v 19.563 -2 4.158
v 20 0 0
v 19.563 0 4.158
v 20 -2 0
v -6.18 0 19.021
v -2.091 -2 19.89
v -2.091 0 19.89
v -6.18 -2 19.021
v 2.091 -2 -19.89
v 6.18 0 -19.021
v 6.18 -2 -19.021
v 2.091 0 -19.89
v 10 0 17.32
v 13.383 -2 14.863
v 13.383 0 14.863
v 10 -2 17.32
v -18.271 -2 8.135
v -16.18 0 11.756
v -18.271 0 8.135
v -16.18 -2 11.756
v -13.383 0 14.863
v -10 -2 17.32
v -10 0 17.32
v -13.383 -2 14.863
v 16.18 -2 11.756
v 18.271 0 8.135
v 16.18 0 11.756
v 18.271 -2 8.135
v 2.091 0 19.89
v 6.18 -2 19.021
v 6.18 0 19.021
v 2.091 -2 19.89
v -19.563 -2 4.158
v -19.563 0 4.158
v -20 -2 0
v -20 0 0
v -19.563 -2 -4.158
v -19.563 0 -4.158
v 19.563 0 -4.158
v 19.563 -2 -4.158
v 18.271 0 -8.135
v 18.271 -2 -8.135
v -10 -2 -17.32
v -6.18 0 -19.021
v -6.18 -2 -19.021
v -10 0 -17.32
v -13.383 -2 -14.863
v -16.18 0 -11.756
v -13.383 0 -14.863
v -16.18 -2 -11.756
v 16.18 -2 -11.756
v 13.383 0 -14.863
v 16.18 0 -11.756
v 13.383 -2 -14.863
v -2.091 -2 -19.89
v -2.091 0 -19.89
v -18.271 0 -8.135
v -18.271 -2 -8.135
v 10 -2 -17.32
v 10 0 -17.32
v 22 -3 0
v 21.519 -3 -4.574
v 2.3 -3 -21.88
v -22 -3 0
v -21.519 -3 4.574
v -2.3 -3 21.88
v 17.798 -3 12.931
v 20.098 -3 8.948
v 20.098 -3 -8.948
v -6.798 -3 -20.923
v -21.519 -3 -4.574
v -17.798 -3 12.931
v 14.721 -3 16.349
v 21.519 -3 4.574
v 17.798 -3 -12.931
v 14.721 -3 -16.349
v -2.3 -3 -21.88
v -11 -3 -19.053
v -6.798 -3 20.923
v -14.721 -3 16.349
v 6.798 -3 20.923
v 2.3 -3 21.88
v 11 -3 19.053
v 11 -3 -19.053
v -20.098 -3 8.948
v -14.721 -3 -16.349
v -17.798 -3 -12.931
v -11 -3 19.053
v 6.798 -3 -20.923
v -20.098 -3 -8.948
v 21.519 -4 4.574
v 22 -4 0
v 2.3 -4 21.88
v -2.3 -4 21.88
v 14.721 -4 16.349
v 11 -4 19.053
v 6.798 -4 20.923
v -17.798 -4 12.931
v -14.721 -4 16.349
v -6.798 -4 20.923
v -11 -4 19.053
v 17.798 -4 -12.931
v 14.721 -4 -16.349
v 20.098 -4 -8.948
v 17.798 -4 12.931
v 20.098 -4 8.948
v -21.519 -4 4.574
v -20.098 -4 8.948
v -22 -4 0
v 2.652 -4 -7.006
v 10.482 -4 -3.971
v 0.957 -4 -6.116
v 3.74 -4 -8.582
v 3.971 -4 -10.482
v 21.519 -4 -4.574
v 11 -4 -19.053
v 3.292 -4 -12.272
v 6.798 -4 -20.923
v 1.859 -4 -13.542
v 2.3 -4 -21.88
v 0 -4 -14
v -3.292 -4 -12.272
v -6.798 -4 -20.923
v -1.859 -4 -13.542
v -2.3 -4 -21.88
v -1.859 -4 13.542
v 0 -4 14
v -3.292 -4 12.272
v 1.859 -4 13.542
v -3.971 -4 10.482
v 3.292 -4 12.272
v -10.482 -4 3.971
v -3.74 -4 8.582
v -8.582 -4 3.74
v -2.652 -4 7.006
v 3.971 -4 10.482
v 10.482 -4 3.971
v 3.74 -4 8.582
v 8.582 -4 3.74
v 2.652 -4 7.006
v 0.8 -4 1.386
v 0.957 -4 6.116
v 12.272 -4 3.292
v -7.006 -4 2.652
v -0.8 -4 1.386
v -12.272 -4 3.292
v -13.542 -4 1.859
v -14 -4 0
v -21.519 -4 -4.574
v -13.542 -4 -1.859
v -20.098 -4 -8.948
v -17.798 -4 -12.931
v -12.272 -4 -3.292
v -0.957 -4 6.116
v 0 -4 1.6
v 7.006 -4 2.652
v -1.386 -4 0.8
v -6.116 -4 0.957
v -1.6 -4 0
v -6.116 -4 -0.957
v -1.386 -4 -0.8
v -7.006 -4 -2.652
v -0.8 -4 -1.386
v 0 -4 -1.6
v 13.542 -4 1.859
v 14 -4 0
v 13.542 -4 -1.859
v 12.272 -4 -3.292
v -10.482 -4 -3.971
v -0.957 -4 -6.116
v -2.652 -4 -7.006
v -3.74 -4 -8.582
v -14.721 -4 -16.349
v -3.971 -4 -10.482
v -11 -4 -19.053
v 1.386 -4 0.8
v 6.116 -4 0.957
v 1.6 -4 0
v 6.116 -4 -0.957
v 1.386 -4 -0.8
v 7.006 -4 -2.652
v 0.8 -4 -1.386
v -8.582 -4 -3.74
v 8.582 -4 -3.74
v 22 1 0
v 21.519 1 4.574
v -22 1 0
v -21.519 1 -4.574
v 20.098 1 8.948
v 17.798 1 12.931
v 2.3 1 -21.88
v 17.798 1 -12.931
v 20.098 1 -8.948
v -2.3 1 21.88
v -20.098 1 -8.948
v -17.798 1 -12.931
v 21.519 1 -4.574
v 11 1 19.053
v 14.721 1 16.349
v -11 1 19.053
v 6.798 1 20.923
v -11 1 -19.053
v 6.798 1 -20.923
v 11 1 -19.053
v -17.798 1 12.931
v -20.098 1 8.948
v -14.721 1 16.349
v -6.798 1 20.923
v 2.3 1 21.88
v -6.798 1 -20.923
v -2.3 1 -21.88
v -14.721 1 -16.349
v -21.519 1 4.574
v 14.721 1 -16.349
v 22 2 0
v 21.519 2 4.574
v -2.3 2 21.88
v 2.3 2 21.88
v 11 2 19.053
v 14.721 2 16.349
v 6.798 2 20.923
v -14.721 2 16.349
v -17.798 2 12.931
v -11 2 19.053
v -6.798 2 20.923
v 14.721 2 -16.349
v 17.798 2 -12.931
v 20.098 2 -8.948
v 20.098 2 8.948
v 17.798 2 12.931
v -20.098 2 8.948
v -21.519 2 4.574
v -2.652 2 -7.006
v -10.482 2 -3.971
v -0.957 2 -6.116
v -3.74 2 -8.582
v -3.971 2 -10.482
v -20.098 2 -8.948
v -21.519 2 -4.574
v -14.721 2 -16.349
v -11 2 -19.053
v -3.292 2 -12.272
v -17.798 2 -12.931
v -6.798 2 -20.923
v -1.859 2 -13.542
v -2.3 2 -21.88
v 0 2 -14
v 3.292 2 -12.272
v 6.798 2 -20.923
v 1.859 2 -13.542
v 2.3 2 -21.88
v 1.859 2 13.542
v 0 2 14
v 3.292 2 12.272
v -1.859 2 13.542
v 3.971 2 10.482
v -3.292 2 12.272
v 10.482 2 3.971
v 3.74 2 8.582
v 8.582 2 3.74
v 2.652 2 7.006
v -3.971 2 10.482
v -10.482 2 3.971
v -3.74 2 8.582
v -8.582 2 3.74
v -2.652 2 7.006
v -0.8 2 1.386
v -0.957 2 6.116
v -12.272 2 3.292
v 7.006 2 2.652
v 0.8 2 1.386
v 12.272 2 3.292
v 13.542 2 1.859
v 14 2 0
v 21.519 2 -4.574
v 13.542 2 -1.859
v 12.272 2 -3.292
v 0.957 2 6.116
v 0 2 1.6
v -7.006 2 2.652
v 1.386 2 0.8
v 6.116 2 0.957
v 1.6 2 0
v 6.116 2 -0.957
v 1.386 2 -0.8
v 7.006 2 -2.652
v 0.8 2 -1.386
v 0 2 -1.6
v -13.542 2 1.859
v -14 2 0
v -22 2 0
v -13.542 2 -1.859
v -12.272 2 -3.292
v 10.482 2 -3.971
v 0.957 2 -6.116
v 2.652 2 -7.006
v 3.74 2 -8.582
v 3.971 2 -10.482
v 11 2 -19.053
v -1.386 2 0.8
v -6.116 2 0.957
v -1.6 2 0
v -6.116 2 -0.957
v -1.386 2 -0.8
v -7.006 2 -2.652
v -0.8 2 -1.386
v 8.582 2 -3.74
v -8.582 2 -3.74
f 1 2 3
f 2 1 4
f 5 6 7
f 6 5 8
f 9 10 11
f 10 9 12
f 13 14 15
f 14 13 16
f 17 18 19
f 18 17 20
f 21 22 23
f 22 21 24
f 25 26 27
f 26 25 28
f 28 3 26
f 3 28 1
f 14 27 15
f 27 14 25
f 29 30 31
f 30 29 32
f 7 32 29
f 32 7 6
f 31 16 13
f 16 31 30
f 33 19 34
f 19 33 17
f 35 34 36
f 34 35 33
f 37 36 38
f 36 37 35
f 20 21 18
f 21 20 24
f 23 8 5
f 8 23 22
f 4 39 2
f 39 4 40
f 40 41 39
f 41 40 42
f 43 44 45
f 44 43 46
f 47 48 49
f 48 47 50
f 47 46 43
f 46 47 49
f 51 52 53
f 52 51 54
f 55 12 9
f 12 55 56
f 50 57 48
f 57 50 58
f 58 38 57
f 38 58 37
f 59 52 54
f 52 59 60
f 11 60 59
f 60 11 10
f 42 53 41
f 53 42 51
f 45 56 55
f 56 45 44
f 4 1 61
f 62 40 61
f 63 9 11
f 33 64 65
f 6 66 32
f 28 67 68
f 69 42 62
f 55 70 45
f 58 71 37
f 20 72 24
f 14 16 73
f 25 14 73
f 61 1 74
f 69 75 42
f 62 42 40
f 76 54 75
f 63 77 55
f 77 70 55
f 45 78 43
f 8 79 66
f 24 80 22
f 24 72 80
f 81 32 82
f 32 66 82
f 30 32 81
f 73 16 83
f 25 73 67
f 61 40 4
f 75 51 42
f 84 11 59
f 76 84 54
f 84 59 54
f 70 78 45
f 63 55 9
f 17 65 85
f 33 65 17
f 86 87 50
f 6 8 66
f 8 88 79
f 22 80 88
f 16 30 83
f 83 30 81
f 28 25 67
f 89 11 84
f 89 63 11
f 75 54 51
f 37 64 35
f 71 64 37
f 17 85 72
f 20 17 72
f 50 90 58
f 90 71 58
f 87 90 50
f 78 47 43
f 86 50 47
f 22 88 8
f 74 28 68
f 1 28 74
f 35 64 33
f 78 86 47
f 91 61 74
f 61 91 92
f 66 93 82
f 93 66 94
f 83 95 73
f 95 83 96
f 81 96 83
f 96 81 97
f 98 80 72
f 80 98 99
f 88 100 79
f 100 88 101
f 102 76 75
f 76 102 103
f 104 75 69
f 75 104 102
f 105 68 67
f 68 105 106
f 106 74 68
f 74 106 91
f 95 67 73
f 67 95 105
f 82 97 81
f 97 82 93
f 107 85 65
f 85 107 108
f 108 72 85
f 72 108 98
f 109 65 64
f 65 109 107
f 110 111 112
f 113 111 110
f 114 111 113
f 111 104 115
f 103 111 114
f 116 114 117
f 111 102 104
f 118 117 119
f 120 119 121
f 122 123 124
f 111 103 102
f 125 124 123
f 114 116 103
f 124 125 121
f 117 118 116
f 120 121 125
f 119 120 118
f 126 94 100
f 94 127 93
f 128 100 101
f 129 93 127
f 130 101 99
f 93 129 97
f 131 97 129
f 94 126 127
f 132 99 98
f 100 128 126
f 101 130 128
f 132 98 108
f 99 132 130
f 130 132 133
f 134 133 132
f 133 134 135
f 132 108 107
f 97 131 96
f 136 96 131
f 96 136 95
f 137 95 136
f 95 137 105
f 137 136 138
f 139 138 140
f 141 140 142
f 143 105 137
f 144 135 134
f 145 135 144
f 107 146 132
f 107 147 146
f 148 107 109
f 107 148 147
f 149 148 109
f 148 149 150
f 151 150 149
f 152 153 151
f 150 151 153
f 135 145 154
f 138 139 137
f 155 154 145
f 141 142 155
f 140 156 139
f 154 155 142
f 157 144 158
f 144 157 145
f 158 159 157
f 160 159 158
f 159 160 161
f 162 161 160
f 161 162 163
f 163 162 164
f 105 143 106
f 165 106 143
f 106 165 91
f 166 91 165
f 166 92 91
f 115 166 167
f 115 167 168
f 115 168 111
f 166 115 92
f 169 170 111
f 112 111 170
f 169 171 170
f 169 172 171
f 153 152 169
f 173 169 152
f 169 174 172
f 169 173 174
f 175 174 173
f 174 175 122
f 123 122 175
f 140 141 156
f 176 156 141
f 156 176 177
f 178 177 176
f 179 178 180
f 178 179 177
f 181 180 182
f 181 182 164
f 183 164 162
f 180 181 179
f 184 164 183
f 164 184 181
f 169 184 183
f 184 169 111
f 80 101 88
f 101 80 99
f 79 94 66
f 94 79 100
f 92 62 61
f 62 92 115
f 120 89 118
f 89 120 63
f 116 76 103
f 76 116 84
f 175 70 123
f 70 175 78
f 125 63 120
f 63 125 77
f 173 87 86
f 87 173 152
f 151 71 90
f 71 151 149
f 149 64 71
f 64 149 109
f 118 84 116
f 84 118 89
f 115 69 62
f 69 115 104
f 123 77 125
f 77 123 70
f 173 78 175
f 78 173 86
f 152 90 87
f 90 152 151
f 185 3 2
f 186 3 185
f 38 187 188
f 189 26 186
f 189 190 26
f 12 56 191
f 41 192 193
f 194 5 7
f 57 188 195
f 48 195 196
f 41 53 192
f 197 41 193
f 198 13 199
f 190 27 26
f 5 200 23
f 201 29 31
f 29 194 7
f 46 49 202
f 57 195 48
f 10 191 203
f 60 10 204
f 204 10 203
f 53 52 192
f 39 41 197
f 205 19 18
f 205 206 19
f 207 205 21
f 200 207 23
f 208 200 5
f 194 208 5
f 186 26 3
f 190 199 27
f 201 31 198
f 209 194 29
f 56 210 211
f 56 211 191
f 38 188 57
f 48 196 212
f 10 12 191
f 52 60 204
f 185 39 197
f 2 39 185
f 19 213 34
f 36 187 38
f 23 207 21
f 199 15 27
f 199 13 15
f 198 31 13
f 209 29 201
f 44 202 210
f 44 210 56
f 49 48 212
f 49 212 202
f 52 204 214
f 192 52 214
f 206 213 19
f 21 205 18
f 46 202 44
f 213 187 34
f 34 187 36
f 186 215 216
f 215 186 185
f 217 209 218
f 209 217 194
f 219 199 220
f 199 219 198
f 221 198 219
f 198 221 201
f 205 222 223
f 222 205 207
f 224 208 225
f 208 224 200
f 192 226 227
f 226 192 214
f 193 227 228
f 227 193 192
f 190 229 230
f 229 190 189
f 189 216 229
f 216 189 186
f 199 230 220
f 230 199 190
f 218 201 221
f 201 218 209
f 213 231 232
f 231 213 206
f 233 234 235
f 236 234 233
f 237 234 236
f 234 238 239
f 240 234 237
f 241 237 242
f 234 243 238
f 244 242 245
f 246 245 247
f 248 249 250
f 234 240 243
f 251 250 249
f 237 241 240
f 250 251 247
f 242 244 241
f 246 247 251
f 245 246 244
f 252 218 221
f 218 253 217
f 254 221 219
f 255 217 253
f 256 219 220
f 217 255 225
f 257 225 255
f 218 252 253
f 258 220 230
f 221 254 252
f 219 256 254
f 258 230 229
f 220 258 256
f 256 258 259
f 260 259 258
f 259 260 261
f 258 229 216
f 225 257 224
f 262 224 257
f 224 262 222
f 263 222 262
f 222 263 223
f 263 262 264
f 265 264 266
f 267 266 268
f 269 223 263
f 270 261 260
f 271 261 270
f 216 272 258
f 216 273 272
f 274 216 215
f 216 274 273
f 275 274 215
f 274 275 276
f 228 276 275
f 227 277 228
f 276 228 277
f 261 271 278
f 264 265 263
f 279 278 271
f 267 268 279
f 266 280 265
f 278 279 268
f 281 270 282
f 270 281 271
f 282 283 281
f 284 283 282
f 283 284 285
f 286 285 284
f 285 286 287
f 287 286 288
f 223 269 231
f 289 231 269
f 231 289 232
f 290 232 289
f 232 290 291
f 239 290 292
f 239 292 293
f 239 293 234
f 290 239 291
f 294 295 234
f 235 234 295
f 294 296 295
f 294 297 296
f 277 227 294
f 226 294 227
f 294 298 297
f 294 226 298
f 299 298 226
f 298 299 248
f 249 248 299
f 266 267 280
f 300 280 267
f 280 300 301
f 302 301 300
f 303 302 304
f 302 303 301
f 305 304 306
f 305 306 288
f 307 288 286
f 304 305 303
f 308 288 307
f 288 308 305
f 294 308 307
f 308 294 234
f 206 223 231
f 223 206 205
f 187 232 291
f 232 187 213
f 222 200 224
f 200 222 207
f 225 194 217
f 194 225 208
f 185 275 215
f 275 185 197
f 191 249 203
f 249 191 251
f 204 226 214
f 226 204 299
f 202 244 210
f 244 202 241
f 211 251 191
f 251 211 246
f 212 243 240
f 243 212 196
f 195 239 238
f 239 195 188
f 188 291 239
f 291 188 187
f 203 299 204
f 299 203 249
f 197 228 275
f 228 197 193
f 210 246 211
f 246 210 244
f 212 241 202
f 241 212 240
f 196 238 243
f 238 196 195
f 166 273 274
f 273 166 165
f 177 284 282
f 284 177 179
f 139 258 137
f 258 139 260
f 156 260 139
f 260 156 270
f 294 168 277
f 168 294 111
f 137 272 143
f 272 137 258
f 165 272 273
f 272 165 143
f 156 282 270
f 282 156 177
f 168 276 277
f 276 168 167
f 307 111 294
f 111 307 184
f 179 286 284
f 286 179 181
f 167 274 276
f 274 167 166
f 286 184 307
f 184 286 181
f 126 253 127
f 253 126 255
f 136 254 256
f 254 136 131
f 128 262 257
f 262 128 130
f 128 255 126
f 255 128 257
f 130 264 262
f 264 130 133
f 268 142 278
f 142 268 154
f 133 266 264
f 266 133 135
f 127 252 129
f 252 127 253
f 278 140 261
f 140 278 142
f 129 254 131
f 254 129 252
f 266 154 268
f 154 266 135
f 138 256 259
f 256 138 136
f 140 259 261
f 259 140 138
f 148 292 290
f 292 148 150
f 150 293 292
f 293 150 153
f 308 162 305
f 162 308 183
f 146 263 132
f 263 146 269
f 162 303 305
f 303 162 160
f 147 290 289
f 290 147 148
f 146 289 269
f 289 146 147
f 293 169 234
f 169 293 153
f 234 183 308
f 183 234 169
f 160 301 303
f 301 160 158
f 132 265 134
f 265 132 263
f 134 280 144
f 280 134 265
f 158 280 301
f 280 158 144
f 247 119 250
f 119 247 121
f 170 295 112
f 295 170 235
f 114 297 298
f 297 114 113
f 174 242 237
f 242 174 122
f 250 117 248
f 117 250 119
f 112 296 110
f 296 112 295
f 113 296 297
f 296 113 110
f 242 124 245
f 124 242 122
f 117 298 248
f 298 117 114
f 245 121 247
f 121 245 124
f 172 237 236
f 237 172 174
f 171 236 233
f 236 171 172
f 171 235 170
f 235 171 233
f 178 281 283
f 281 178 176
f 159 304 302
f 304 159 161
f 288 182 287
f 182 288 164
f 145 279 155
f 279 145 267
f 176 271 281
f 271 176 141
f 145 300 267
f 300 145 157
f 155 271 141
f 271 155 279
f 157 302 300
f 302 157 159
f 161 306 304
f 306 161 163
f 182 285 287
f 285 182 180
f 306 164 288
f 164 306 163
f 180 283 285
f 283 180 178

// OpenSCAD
// file: vars.scad
SIDE_WIDTH = 8;
RESERVE_V = 10;
RESERVE_H = 15;
RESERVE_R = 0.5;
OUTER_R = 100;
INNER_R = 25;
SPOOL_WIDTH = 70;
AXIS_R = 5;
// main file
include <vars.scad>

module pulley()
{
    rotate([90,0,0])
    difference()
    {
        union()
        {
            
            {
                cylinder(h = 2, r = 20);
                translate([0,0,2])
                cylinder(h = 1, r1 = 20, r2 = 22);
                translate([0,0,3])
                cylinder(h = 1, r = 22);
                translate([0,0,-1])
                cylinder(h = 1, r1 = 22, r2 = 20);
                translate([0,0,-2])
                cylinder(h = 1, r = 22);
            }
        }
        
        translate([0,0,-5])
        cylinder(h = 20, r = 1.6, $fn = 12);
        
        
        for(i = [0, 90, 180, 270])
        {
            rotate([0,0,i])
            translate([10,0,-3])
            cylinder(h = 8, r = 4);
        }
    }
    
}

color("Blue")
pulley();
